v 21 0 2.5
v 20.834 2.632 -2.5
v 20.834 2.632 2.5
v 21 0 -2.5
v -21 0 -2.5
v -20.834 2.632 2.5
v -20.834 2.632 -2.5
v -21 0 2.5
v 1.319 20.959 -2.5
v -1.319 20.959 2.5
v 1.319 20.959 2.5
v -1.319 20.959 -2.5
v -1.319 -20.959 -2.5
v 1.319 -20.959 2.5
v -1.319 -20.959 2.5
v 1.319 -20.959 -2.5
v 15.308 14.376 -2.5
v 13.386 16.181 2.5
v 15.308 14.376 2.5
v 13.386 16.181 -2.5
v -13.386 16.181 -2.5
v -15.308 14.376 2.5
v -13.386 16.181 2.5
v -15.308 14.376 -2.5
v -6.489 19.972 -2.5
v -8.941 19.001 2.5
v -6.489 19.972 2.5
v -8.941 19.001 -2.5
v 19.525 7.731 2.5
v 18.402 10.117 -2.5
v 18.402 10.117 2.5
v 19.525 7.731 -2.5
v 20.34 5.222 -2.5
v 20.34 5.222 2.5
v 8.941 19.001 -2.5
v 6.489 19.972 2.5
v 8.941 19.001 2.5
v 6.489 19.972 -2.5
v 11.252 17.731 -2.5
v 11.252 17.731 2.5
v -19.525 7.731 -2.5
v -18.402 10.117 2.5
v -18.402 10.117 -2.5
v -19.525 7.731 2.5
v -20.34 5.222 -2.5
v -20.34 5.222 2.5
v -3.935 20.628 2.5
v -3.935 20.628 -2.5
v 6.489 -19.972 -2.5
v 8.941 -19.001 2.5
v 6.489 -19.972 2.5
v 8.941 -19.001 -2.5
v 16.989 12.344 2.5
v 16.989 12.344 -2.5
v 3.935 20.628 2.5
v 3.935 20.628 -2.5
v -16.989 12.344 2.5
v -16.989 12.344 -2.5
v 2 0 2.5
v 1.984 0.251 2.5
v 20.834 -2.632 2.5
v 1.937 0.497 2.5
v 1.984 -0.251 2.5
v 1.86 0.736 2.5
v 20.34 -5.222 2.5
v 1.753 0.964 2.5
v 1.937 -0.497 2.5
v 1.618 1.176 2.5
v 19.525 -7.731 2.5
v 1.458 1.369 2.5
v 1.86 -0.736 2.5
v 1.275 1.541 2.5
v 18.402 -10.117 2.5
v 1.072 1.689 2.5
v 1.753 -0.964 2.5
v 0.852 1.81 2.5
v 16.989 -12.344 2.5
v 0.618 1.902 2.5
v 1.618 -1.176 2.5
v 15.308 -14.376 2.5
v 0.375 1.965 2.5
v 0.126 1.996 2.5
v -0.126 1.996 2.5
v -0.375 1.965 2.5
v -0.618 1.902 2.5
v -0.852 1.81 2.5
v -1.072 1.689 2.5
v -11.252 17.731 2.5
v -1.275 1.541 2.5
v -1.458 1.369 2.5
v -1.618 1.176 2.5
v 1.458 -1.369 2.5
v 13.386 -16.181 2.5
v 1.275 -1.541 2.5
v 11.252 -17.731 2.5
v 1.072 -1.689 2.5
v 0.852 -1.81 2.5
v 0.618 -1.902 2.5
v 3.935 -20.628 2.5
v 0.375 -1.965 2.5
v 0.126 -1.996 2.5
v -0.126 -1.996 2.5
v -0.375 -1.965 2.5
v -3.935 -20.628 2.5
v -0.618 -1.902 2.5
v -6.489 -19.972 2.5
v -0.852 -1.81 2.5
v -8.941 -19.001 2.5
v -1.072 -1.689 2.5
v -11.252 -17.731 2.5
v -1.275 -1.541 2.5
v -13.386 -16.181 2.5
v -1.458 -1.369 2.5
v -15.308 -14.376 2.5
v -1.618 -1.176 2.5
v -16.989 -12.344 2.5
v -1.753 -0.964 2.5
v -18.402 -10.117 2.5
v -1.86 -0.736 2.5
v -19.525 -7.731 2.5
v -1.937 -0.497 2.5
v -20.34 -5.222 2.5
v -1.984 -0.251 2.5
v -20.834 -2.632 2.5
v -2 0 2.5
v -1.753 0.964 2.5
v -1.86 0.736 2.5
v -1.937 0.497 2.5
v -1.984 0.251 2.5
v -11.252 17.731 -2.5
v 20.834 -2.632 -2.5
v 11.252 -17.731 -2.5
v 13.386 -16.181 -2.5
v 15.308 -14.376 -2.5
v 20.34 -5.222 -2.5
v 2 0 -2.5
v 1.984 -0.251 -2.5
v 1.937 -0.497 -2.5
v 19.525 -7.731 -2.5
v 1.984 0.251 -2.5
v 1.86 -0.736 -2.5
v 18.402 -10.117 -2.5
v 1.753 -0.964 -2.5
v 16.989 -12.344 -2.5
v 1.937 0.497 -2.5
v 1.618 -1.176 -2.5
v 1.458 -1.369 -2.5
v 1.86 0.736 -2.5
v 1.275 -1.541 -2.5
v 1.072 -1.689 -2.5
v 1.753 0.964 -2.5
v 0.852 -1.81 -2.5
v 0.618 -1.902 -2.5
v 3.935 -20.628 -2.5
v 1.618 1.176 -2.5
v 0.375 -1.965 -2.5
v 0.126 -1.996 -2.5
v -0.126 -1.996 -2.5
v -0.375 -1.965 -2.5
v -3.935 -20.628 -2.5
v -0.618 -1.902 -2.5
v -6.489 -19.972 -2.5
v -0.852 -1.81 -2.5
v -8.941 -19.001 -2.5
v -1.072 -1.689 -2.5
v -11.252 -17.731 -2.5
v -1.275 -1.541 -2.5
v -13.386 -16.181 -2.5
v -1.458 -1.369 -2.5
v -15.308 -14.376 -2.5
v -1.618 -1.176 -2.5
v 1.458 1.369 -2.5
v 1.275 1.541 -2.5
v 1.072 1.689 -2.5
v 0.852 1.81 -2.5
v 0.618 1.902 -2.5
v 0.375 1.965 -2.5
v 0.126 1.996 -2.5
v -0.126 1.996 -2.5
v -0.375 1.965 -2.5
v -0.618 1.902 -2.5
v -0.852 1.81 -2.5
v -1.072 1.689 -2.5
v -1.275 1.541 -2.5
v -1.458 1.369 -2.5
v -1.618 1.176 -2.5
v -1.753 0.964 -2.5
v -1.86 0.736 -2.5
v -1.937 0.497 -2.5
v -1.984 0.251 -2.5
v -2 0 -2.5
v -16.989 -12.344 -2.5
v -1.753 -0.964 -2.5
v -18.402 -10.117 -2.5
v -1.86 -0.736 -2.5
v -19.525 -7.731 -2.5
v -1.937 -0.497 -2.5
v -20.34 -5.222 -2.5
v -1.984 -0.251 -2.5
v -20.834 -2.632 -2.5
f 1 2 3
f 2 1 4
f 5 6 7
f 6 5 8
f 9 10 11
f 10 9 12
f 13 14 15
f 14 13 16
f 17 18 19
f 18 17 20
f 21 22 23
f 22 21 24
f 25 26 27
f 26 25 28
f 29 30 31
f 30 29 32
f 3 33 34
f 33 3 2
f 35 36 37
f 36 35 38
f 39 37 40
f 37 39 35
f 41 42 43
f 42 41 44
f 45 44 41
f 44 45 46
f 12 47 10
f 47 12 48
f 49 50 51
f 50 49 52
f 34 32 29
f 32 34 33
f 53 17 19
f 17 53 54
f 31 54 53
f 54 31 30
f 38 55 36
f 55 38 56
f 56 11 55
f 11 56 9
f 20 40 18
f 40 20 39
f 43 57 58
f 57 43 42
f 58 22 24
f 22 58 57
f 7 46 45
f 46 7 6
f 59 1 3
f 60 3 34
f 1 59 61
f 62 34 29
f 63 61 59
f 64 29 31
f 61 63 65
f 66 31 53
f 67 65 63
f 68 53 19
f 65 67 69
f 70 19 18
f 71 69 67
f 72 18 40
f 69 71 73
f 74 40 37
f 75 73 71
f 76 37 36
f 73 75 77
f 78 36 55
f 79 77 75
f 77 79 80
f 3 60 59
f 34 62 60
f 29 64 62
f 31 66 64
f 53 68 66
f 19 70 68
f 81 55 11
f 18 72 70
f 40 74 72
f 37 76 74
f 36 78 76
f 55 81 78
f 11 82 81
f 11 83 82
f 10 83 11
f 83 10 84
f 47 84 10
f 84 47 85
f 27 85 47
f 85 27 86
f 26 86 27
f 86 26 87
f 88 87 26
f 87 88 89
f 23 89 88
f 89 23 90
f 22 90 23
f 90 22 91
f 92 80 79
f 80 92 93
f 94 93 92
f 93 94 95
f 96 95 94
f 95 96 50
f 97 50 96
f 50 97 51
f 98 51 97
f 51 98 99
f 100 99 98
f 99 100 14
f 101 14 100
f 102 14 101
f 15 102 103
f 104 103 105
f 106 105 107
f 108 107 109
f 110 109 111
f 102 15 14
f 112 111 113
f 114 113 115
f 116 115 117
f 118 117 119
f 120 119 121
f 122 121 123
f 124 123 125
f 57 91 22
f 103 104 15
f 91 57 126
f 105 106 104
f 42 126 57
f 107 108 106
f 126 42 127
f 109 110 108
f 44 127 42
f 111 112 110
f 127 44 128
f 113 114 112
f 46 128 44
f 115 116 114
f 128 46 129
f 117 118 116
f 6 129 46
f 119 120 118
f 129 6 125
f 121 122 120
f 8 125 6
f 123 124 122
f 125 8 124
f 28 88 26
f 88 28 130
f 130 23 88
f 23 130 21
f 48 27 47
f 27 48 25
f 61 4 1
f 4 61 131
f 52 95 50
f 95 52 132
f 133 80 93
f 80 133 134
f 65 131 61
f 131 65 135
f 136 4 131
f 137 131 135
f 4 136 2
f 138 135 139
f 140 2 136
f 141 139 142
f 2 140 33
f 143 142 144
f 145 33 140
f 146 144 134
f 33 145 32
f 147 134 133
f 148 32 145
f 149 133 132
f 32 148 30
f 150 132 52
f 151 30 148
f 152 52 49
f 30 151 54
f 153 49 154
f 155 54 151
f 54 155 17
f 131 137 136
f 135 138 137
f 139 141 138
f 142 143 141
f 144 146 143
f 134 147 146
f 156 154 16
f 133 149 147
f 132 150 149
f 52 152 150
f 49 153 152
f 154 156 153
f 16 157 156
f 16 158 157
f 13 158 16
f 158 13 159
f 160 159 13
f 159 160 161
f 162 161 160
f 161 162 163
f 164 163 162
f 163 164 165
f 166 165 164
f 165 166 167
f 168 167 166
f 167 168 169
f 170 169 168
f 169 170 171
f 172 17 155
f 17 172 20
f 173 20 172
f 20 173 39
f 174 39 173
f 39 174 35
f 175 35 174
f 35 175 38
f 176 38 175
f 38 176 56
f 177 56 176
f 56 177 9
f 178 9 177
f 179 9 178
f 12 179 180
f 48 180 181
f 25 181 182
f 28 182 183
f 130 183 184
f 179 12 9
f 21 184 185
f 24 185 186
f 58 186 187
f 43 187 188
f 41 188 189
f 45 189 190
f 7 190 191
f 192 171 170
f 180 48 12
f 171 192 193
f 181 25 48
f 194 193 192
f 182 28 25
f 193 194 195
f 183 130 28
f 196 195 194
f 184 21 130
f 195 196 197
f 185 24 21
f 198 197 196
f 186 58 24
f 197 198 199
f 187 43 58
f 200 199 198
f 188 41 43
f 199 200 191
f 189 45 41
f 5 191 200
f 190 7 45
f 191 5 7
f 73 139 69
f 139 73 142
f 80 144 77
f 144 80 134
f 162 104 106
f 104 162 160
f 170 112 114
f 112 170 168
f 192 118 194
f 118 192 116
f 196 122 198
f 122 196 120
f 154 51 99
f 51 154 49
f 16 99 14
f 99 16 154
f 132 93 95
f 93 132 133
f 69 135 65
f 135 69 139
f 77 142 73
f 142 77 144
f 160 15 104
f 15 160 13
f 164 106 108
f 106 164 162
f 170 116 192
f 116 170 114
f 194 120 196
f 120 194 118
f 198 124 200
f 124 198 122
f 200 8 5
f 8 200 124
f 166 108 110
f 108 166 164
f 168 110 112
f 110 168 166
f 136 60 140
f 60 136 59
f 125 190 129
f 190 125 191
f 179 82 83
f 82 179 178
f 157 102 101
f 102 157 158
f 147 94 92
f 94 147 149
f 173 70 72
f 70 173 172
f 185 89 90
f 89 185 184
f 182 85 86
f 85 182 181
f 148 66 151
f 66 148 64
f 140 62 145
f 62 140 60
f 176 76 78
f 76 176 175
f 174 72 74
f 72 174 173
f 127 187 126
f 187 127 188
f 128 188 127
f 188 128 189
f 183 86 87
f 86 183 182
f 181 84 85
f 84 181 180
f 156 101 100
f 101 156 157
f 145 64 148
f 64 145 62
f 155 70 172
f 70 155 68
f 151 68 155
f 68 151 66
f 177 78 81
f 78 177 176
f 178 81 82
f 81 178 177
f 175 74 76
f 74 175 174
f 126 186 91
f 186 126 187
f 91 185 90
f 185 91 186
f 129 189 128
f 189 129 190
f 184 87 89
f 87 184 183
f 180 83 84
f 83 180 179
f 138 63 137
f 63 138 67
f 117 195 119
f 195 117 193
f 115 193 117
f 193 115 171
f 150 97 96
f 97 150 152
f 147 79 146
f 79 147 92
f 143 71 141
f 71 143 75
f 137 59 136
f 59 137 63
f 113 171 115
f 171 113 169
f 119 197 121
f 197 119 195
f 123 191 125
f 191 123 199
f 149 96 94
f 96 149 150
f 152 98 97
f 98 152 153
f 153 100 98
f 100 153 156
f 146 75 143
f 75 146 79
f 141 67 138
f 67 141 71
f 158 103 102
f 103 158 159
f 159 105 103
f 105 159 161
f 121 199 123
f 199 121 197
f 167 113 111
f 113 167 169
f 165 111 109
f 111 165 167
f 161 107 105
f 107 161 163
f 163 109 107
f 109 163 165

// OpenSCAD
$fn = 50;


difference() {
	union() {
		translate(v = [0, 0, -2.5000000000]) {
			cylinder(h = 5, r = 21.0000000000);
		}
	}
	union() {
		translate(v = [0, 0, -100.0000000000]) {
			cylinder(h = 200, r = 2);
		}
	}
}
